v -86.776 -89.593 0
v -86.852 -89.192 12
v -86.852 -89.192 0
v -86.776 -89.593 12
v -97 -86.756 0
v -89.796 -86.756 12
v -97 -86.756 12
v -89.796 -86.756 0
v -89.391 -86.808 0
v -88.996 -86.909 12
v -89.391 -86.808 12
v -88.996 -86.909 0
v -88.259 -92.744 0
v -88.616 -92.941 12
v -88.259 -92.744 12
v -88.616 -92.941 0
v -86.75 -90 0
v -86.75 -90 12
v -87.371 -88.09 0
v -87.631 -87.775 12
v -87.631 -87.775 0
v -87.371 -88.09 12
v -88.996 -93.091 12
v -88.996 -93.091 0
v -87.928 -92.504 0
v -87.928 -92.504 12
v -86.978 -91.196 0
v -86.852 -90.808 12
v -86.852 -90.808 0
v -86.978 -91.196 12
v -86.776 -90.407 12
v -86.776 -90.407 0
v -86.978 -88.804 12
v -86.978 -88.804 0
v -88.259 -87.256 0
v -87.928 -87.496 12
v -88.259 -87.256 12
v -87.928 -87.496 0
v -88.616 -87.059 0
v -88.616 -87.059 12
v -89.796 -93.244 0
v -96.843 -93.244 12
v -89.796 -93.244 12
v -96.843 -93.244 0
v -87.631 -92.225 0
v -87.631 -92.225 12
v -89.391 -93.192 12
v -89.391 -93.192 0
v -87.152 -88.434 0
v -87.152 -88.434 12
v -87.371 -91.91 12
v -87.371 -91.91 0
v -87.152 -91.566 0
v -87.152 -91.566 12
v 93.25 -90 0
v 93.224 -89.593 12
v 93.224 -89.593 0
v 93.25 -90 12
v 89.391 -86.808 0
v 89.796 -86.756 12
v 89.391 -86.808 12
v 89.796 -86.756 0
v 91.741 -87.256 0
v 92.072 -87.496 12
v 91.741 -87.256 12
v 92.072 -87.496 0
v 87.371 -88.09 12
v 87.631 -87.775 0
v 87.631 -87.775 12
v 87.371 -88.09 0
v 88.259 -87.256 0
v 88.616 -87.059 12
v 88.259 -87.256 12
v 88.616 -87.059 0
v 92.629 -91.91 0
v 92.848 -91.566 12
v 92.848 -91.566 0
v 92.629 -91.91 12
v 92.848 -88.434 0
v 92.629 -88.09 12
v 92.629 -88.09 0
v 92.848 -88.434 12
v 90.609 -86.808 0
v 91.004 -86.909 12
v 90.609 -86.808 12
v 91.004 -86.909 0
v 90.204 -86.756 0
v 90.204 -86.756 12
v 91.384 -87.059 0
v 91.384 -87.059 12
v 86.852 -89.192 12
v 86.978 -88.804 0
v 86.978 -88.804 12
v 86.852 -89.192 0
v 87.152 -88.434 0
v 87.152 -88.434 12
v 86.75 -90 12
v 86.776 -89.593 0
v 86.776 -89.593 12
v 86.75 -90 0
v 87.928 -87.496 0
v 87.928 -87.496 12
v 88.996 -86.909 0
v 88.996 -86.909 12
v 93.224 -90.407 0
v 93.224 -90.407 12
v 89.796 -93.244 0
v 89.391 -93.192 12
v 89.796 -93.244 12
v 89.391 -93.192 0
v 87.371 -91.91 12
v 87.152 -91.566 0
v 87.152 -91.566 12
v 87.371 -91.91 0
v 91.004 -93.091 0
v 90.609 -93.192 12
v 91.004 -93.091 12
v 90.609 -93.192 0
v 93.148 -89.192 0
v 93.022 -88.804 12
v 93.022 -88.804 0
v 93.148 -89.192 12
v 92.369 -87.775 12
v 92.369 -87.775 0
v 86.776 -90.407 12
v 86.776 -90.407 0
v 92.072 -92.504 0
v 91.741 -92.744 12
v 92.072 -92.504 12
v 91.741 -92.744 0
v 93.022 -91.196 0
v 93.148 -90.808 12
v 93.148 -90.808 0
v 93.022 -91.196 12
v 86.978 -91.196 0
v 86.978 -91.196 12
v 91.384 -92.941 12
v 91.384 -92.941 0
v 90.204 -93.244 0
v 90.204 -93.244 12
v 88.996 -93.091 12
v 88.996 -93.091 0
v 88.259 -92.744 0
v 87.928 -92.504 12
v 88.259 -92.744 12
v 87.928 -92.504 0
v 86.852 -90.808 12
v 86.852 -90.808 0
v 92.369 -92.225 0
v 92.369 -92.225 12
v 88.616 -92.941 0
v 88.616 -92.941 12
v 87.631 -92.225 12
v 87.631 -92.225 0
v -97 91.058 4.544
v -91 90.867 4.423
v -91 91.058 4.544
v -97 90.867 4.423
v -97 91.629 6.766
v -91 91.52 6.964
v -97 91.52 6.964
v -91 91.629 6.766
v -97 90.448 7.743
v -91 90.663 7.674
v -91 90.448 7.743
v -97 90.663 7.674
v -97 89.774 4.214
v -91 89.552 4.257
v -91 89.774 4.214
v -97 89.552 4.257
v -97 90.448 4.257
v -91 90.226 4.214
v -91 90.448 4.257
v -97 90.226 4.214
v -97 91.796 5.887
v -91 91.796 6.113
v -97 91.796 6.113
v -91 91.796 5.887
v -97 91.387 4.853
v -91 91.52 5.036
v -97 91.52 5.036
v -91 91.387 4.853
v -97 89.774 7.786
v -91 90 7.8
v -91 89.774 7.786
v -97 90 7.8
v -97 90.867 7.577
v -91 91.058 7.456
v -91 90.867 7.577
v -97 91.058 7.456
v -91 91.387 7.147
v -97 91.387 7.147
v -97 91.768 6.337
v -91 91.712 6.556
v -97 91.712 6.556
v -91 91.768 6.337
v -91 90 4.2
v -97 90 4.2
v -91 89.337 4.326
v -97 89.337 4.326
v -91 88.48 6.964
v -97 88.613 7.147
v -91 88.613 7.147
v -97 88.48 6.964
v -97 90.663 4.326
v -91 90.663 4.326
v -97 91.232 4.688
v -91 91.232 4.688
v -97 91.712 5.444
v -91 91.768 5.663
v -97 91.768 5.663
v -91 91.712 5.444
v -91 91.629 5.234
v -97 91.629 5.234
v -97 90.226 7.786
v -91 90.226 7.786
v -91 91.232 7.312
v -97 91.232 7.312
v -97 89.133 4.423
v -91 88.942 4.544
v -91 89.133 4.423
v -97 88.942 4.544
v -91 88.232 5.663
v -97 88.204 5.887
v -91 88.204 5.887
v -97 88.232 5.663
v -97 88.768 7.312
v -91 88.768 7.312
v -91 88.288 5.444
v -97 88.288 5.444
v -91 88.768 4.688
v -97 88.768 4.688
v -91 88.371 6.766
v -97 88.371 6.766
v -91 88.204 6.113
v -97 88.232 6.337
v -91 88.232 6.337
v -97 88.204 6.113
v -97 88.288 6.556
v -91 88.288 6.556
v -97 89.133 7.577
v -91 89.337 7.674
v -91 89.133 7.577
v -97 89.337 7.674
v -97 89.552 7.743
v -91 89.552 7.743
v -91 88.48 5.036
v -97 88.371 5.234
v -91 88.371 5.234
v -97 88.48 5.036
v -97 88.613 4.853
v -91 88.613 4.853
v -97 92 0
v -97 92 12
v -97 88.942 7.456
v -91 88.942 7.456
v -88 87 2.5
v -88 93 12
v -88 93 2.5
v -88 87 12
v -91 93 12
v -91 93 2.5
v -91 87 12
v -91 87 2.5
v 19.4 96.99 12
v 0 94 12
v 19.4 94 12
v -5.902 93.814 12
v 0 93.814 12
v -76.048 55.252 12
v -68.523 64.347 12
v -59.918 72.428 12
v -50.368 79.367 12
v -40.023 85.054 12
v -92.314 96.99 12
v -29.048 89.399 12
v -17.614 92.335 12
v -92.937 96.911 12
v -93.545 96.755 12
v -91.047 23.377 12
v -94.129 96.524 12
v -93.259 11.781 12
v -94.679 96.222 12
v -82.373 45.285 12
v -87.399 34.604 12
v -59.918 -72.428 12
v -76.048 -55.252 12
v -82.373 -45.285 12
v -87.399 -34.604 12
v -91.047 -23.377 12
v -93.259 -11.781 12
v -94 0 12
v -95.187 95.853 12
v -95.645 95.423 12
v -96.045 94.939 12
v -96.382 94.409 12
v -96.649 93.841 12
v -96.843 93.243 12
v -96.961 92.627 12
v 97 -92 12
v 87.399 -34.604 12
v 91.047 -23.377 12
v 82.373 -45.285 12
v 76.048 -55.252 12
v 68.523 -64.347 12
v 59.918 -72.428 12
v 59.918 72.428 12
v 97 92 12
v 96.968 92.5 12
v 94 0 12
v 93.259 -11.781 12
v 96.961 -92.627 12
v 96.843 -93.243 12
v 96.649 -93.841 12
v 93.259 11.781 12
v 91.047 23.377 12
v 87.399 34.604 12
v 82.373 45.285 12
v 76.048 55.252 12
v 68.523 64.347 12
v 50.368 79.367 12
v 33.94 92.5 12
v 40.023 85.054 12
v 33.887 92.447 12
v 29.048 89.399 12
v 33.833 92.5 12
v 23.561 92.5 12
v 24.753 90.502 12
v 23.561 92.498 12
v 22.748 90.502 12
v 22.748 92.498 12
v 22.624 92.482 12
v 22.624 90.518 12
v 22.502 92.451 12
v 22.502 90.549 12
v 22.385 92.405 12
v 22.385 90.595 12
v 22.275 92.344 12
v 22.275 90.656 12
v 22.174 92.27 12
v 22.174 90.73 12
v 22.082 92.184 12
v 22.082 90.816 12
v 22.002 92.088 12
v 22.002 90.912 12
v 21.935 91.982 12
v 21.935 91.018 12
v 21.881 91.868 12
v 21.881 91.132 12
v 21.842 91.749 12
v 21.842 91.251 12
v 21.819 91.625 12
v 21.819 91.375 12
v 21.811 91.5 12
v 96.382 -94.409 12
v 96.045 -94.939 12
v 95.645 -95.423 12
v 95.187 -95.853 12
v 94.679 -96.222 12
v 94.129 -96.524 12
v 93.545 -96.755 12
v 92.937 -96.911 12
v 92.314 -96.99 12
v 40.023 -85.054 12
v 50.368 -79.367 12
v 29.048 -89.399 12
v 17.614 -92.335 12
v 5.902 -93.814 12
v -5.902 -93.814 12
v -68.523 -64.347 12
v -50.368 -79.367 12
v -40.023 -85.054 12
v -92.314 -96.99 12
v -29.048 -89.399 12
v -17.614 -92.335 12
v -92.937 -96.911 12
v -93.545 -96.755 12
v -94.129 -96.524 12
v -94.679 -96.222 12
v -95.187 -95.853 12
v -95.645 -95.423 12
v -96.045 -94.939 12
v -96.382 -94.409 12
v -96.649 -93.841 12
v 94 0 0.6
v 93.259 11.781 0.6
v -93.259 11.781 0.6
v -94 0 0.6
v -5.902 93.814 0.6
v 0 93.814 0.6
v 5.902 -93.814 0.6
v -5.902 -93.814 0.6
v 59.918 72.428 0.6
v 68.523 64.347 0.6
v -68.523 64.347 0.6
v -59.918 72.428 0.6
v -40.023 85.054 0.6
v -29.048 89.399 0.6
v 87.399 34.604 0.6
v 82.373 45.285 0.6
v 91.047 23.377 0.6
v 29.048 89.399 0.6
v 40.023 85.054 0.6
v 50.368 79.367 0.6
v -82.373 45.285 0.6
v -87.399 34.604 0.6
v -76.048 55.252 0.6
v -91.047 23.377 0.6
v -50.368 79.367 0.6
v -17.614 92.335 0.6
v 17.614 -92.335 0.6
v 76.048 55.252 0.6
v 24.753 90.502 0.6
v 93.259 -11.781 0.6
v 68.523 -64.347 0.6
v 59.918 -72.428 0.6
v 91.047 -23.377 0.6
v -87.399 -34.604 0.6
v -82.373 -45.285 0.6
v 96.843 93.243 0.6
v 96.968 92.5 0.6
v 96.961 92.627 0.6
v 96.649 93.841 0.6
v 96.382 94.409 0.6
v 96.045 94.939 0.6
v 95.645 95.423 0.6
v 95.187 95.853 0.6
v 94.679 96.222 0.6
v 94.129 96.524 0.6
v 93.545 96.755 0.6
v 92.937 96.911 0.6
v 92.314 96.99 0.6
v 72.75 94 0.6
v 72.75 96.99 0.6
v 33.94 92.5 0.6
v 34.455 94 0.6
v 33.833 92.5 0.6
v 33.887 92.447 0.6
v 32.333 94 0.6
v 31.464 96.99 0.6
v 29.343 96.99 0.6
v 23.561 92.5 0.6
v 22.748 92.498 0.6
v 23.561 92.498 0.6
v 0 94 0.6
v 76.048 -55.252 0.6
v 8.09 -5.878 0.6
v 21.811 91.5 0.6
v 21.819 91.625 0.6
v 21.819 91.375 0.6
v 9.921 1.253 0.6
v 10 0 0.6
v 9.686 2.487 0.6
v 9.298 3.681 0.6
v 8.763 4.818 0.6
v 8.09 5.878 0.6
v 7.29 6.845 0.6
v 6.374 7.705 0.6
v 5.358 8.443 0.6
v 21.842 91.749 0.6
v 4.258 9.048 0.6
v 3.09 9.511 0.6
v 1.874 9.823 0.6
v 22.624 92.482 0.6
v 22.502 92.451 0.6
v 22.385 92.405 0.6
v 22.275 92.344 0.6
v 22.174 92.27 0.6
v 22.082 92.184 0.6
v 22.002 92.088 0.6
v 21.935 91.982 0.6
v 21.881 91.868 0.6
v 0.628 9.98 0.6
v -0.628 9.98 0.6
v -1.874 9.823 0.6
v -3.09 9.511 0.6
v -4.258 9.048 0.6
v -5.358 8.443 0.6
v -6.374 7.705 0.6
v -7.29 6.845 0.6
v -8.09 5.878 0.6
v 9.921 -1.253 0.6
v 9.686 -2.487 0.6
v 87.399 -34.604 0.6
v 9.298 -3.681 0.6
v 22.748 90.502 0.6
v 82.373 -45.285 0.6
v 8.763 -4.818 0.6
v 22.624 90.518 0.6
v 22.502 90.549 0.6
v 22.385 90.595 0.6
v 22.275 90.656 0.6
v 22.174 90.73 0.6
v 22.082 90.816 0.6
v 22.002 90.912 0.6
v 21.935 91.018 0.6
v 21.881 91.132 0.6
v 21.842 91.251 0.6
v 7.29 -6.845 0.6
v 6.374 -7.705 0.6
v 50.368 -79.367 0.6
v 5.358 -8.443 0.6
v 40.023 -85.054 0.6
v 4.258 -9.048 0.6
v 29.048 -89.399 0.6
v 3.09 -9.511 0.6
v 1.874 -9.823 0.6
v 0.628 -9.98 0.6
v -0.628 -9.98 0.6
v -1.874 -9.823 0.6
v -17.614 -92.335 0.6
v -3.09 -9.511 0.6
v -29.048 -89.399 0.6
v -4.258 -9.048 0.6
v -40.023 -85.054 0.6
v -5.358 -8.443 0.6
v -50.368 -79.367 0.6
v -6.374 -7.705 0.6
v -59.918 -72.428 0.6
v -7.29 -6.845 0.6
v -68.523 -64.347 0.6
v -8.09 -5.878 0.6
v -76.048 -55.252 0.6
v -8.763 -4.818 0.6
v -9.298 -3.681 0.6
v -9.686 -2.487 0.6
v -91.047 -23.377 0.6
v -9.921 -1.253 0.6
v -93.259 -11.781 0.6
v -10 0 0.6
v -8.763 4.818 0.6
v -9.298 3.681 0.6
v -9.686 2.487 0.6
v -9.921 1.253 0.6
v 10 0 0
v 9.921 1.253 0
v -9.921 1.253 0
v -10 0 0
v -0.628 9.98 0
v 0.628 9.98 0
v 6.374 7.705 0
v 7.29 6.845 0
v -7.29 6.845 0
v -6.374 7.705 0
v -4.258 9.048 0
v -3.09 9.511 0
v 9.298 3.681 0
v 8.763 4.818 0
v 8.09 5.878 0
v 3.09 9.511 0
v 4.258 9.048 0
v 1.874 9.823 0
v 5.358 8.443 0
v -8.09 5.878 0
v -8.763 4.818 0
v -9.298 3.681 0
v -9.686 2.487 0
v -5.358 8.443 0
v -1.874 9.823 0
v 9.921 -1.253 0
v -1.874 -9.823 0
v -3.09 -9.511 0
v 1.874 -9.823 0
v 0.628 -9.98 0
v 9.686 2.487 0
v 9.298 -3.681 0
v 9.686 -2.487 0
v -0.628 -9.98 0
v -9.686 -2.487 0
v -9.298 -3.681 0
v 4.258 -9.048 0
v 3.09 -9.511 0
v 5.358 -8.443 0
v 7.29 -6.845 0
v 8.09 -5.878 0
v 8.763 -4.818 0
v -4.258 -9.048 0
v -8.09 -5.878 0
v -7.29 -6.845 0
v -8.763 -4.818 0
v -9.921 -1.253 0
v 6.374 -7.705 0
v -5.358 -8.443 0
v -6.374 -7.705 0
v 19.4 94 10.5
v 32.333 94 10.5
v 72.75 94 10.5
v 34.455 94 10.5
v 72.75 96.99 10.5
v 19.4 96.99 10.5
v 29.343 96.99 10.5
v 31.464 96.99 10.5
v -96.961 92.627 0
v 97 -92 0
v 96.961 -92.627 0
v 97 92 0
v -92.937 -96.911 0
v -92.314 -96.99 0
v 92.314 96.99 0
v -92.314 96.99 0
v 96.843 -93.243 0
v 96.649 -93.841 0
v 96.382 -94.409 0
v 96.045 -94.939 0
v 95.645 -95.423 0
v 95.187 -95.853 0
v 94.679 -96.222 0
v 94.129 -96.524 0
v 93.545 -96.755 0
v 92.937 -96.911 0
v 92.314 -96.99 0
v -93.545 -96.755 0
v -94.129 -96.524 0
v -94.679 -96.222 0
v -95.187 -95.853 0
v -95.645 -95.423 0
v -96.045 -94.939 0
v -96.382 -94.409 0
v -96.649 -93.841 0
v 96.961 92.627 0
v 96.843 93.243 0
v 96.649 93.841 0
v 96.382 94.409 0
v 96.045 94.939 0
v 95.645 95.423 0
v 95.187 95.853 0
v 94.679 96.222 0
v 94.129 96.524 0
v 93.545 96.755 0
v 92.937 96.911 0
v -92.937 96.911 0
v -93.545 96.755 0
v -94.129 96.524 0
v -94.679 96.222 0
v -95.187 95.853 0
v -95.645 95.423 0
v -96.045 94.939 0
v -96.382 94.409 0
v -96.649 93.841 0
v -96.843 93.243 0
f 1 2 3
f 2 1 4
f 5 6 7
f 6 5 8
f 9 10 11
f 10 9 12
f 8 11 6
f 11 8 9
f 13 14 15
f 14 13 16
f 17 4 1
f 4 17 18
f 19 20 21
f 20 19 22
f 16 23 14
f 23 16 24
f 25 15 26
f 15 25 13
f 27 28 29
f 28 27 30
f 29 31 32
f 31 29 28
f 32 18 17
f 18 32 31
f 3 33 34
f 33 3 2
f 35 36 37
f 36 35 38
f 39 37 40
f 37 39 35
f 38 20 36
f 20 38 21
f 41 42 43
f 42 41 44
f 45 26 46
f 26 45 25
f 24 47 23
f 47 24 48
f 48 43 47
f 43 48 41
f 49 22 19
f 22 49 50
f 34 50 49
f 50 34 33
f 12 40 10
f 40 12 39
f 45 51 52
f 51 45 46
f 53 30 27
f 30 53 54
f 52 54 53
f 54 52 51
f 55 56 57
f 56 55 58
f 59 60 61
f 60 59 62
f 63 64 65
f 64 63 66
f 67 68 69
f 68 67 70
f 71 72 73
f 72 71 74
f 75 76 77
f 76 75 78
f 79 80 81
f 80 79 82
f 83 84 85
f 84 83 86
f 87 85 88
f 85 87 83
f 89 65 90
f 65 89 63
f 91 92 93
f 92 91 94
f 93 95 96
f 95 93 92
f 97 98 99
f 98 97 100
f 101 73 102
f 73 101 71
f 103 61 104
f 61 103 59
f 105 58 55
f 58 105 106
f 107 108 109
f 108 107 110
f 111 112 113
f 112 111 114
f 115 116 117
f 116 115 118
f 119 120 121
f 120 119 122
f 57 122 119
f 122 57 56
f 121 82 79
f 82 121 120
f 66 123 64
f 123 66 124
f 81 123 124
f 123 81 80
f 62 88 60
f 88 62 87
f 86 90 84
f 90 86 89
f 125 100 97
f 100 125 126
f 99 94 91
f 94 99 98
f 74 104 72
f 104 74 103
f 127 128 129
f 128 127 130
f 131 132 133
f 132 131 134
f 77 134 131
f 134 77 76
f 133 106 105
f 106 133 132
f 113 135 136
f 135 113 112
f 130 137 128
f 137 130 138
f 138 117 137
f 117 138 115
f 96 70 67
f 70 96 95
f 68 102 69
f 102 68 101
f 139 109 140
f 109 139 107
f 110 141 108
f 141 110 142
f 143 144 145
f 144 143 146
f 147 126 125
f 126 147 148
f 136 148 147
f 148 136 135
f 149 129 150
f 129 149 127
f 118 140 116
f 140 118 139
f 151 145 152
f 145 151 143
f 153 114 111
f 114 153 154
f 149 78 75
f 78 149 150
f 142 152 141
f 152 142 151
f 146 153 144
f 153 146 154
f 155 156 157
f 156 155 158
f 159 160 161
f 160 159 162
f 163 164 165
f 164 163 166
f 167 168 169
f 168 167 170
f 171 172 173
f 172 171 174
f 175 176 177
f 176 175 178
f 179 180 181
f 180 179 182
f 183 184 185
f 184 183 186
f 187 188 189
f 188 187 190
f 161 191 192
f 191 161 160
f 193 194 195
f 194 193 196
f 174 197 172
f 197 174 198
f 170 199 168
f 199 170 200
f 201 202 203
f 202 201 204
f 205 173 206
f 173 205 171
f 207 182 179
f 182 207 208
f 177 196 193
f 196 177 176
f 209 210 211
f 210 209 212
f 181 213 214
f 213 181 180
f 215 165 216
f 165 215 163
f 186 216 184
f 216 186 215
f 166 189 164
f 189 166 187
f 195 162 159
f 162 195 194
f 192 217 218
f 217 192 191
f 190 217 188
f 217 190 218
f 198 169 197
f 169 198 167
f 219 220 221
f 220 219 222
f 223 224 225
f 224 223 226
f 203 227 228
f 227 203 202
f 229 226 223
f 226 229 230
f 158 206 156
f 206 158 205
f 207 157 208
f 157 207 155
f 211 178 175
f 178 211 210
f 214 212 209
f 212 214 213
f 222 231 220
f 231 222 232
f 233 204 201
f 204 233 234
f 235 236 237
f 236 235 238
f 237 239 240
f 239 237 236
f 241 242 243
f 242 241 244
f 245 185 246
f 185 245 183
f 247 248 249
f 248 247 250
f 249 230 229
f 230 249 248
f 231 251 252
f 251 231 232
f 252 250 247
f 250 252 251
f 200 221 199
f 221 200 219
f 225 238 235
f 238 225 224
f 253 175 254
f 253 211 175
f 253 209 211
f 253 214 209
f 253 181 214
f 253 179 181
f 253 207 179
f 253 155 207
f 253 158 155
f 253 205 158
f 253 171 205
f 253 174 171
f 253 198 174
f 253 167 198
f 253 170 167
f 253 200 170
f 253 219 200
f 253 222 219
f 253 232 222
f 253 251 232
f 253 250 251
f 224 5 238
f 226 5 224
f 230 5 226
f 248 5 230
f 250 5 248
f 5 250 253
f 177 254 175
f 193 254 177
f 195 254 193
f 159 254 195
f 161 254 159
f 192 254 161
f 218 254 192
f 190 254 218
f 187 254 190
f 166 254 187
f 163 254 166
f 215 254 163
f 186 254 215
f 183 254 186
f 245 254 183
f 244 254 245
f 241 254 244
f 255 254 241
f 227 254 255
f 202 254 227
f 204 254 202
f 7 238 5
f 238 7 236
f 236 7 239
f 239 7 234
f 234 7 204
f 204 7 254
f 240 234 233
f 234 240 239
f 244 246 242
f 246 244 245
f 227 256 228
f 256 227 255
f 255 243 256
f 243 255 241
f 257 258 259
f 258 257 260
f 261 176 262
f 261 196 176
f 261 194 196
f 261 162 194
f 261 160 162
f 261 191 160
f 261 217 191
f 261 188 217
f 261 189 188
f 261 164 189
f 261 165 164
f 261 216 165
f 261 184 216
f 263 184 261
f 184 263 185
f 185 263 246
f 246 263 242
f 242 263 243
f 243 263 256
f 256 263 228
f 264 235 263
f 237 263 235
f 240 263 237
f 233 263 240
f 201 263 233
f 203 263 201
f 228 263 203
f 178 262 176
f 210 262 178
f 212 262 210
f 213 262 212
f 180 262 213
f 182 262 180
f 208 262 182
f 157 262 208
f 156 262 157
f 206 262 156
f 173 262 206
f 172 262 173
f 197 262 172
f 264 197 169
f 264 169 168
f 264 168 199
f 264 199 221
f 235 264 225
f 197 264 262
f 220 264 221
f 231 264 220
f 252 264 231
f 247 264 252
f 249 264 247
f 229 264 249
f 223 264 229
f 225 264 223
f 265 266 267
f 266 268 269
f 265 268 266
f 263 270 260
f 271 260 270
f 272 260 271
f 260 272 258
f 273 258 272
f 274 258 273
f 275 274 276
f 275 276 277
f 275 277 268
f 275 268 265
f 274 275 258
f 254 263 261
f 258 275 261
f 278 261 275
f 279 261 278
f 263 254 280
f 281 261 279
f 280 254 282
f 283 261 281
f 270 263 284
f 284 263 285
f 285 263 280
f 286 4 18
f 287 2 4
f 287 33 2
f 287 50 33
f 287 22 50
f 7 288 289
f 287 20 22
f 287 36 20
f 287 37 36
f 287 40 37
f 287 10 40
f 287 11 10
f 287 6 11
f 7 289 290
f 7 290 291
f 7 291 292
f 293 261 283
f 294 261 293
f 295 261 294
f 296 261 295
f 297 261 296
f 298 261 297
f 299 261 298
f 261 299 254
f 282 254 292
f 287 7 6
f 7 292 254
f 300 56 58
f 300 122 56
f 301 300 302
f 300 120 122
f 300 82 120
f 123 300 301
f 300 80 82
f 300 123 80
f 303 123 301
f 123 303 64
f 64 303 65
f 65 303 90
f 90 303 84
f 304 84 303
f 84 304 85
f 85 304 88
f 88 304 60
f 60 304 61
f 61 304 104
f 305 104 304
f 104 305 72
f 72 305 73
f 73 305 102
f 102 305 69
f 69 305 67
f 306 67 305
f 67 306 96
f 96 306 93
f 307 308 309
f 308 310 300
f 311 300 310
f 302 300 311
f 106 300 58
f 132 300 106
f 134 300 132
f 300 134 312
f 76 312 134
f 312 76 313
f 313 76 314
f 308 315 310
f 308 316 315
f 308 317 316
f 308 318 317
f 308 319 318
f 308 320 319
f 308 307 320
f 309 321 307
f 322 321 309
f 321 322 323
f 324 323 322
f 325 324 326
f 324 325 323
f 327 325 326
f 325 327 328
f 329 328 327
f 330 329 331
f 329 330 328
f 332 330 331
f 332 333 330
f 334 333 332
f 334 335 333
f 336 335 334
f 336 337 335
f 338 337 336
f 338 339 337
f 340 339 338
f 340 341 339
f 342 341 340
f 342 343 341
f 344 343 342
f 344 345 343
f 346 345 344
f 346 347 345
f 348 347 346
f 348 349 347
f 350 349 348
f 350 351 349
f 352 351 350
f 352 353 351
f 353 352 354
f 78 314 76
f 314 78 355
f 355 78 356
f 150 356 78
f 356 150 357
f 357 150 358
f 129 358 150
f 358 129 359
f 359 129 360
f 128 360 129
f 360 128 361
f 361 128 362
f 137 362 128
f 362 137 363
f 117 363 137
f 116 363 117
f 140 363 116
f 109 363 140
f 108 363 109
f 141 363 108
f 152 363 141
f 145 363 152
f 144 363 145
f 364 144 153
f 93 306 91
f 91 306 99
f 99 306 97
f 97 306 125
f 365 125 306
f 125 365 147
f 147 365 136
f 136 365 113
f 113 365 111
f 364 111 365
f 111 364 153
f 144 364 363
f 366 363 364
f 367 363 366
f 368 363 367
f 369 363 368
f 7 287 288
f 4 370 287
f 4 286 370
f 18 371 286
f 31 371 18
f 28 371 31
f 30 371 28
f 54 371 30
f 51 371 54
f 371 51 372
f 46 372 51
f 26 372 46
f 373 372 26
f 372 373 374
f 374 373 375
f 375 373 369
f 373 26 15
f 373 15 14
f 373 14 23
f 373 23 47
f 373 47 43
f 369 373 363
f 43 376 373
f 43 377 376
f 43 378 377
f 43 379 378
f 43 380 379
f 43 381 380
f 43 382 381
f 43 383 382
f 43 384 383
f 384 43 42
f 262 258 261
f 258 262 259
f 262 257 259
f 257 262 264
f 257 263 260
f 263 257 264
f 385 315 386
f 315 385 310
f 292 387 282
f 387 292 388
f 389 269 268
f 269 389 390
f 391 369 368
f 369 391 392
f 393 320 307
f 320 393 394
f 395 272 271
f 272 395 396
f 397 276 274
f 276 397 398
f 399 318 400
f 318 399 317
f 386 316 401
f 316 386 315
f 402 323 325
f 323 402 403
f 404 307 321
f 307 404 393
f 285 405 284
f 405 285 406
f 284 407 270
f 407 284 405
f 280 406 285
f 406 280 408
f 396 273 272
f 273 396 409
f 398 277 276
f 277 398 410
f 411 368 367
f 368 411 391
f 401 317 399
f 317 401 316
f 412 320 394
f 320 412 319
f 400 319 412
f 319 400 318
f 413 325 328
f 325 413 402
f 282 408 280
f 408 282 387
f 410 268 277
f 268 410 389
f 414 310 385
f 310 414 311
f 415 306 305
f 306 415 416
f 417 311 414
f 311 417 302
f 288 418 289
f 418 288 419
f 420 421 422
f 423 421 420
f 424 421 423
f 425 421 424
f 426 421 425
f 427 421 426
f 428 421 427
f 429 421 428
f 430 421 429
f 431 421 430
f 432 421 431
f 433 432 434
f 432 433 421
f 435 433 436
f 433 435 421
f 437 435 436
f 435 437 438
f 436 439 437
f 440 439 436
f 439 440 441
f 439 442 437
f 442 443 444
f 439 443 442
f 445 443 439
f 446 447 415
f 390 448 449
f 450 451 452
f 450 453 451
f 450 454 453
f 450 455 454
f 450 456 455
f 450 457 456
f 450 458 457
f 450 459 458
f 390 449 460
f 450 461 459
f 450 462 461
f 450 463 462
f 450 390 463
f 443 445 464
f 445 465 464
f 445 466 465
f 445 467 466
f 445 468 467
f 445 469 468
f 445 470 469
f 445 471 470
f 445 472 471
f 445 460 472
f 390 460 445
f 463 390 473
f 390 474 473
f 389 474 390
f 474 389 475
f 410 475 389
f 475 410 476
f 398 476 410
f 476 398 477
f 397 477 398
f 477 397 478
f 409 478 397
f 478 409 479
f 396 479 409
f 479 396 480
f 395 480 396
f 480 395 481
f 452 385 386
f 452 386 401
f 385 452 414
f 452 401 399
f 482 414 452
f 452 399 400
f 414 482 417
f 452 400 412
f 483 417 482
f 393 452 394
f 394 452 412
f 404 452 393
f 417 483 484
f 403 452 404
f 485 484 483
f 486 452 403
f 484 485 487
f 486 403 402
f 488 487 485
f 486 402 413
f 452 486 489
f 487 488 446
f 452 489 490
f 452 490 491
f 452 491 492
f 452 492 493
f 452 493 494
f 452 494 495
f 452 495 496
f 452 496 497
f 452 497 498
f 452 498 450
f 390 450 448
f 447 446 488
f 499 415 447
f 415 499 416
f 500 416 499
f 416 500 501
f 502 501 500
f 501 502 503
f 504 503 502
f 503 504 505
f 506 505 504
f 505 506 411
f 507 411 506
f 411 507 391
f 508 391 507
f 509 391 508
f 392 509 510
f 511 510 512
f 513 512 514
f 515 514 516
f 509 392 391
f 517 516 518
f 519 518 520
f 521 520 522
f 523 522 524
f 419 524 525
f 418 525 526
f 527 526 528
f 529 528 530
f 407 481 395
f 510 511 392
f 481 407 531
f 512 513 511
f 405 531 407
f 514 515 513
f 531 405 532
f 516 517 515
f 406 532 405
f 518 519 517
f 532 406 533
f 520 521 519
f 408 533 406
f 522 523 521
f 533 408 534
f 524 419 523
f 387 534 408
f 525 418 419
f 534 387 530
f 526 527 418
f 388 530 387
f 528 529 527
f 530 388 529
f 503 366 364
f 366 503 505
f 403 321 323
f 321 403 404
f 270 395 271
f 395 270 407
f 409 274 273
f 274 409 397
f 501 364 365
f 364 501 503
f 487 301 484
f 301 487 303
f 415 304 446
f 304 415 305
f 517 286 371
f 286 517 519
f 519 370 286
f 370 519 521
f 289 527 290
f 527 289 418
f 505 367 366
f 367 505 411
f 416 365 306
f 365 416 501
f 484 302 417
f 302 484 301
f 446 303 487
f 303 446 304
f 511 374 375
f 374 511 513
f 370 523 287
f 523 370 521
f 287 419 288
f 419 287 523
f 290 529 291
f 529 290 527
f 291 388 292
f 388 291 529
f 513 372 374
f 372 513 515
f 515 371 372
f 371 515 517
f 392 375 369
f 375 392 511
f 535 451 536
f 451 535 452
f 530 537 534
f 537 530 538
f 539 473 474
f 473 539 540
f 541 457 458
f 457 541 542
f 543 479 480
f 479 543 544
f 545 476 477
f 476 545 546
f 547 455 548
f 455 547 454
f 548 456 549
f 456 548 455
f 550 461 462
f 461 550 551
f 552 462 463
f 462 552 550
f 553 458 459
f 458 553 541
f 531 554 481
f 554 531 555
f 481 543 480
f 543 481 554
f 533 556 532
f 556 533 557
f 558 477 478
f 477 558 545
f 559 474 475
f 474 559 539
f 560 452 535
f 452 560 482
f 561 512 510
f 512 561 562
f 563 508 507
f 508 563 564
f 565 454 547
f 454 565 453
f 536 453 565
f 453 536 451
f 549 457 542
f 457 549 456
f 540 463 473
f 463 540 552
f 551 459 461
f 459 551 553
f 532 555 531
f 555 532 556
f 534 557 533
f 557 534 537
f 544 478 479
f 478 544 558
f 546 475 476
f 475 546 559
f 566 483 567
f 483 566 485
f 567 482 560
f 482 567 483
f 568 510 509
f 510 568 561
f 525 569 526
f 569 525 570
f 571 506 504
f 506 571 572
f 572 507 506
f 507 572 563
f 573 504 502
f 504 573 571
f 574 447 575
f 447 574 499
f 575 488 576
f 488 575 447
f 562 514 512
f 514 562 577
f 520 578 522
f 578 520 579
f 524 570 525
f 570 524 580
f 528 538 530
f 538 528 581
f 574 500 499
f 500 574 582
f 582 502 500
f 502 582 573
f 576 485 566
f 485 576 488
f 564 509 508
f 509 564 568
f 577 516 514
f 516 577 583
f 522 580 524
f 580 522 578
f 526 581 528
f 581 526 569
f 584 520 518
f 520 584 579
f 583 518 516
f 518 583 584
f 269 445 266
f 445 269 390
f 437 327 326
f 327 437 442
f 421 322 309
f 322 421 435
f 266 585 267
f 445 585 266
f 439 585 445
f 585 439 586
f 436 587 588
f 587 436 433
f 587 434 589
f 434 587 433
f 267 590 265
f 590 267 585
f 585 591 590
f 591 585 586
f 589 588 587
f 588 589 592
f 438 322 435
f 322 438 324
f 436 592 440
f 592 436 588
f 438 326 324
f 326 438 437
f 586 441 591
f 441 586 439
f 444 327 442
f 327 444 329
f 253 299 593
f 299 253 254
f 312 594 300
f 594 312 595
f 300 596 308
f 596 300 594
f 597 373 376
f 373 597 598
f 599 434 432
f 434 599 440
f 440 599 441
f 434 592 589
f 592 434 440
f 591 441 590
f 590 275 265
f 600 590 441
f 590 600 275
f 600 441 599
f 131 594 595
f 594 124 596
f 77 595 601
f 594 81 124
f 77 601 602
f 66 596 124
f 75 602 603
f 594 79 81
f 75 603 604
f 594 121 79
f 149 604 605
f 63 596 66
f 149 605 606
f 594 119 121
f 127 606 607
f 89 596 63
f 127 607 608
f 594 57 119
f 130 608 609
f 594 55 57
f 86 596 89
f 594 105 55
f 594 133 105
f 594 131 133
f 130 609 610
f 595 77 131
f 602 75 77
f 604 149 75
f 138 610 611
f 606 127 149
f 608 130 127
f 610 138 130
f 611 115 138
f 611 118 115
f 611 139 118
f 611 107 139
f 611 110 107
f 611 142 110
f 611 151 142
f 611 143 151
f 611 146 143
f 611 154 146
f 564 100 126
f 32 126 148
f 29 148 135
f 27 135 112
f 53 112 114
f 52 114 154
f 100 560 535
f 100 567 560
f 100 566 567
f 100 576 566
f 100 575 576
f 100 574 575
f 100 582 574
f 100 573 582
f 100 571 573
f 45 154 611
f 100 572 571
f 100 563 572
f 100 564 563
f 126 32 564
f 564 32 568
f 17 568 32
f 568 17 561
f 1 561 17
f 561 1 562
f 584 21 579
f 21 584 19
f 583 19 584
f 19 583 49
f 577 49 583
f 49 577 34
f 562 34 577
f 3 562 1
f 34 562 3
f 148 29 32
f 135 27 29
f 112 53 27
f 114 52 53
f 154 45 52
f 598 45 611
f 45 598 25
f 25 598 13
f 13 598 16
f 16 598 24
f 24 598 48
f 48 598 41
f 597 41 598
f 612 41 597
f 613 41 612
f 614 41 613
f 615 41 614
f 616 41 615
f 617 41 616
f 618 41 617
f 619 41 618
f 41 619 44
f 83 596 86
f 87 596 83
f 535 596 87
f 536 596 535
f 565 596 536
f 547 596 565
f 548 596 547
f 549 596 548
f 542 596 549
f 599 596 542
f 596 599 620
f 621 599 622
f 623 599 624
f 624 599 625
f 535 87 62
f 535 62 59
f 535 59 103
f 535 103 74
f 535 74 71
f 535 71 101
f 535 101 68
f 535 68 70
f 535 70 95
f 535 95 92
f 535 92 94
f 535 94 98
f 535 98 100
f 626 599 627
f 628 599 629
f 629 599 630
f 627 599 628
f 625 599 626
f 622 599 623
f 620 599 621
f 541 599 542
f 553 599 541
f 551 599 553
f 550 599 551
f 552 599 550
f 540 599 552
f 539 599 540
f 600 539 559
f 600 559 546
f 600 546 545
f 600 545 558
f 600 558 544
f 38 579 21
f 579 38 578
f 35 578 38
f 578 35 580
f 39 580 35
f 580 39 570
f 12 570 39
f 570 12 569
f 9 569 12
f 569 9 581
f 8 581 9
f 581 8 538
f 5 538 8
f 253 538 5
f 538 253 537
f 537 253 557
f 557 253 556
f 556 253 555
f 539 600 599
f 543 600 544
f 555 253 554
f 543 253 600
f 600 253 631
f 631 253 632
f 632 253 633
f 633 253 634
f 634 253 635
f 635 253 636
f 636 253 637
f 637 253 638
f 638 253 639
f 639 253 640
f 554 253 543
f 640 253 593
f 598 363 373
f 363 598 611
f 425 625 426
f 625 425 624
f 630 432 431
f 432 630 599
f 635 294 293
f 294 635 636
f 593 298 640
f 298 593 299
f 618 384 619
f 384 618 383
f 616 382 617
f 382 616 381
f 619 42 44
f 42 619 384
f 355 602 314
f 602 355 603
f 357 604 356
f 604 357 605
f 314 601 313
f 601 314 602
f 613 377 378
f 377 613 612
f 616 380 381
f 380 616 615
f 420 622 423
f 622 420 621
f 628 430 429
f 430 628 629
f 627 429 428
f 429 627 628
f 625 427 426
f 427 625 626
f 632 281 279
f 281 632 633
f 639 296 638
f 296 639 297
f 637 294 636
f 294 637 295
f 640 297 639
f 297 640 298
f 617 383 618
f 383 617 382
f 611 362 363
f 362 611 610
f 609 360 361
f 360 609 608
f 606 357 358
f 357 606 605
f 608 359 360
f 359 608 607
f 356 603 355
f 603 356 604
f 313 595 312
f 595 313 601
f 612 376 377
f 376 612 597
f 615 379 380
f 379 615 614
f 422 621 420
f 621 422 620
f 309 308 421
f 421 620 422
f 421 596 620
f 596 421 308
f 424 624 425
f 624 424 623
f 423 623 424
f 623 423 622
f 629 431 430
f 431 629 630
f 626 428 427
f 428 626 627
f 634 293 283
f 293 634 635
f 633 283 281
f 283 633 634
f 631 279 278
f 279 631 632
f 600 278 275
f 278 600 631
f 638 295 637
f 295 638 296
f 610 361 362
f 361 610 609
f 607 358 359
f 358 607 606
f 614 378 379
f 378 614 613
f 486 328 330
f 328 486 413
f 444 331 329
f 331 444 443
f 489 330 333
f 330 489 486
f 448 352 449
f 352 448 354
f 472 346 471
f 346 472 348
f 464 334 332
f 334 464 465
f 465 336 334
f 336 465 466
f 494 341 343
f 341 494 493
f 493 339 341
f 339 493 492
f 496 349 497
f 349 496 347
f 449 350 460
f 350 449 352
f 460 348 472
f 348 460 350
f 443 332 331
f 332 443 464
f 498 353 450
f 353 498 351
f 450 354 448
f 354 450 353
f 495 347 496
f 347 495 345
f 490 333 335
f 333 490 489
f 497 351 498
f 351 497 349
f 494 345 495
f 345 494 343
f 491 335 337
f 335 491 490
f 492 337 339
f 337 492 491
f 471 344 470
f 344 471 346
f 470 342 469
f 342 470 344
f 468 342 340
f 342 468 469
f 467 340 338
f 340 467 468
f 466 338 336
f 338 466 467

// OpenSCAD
$fn = 50;


union() {
	difference() {
		union() {
			translate(v = [0, 0, 0]) {
				rotate(a = [0, 0, 0]) {
					hull() {
						translate(v = [-92.0000000000, 92.0000000000, 0]) {
							rotate(a = [0, 0, 0]) {
								translate(v = [0, 0, 0]) {
									rotate(a = [0, 0, 0]) {
										cylinder(h = 12, r = 5);
									}
								}
							}
						}
						translate(v = [92.0000000000, 92.0000000000, 0]) {
							rotate(a = [0, 0, 0]) {
								translate(v = [0, 0, 0]) {
									rotate(a = [0, 0, 0]) {
										cylinder(h = 12, r = 5);
									}
								}
							}
						}
						translate(v = [-92.0000000000, -92.0000000000, 0]) {
							rotate(a = [0, 0, 0]) {
								translate(v = [0, 0, 0]) {
									rotate(a = [0, 0, 0]) {
										cylinder(h = 12, r = 5);
									}
								}
							}
						}
						translate(v = [92.0000000000, -92.0000000000, 0]) {
							rotate(a = [0, 0, 0]) {
								translate(v = [0, 0, 0]) {
									rotate(a = [0, 0, 0]) {
										cylinder(h = 12, r = 5);
									}
								}
							}
						}
					}
				}
			}
		}
		union() {
			translate(v = [-97.5000000000, -90.0000000000, -125]) {
				rotate(a = [0, 0, 0]) {
					hull() {
						translate(v = [7.5000000000, 0, 0]) {
							rotate(a = [0, 0, 0]) {
								translate(v = [0, 0, 0]) {
									rotate(a = [0, 0, 0]) {
										cylinder(h = 250, r = 3.2500000000);
									}
								}
							}
						}
						translate(v = [-7.5000000000, 0, 0]) {
							rotate(a = [0, 0, 0]) {
								translate(v = [0, 0, 0]) {
									rotate(a = [0, 0, 0]) {
										cylinder(h = 250, r = 3.2500000000);
									}
								}
							}
						}
					}
				}
			}
			translate(v = [90.0000000000, -90.0000000000, -125.0000000000]) {
				rotate(a = [0, 0, 0]) {
					cylinder(h = 250, r = 3.2500000000);
				}
			}
			translate(v = [-97.0000000000, 90.0000000000, 6.0000000000]) {
				rotate(a = [0, 90, 0]) {
					cylinder(h = 9, r = 1.8000000000);
				}
			}
			translate(v = [-91.0000000000, 87.0000000000, 2.5000000000]) {
				rotate(a = [0, 0, 0]) {
					cube(size = [3, 6, 9.5000000000]);
				}
			}
			translate(v = [0, 0, 0.6000000000]) {
				rotate(a = [0, 0, 0]) {
					cylinder(h = 14.4000000000, r = 94.0000000000);
				}
			}
			translate(v = [0, 0, -6.0000000000]) {
				rotate(a = [0, 0, 0]) {
					cylinder(h = 12, r = 10.0000000000);
				}
			}
			translate(v = [0.0000000000, 92.5000000000, 0.6000000000]) {
				rotate(a = [0, 0, 0]) {
					cube(size = [97.0000000000, 1.5000000000, 14.4000000000]);
				}
			}
			translate(v = [72.7500000000, 92.5000000000, 0.6000000000]) {
				rotate(a = [0, 0, 0]) {
					cube(size = [24.2500000000, 4.5000000000, 14.4000000000]);
				}
			}
			translate(v = [19.4000000000, 92.5000000000, 10.5000000000]) {
				rotate(a = [0, 0, 0]) {
					cube(size = [77.6000000000, 4.5000000000, 1.5000000000]);
				}
			}
			translate(v = [28.5833333333, 97.7500000000, 0.6000000000]) {
				rotate(a = [0, 0, -45]) {
					cube(size = [7.5000000000, 1.5000000000, 14.4000000000]);
				}
			}
			translate(v = [16.0610000000, 90.5000000000, 0.6000000000]) {
				rotate(a = [0, 0, 0]) {
					cube(size = [7.5000000000, 2, 11.4000000000]);
				}
			}
		}
	}
	union() {
		translate(v = [25.3110000000, 91.5000000000, 0]) {
			rotate(a = [0, 0, 0]) {
				hull() {
					translate(v = [2.5000000000, 0, 0]) {
						rotate(a = [0, 0, 0]) {
							translate(v = [0, 0, 0]) {
								rotate(a = [0, 0, 0]) {
									cylinder(h = 12, r = 1.0000000000);
								}
							}
						}
					}
					translate(v = [-2.5000000000, 0, 0]) {
						rotate(a = [0, 0, 0]) {
							translate(v = [0, 0, 0]) {
								rotate(a = [0, 0, 0]) {
									cylinder(h = 12, r = 1.0000000000);
								}
							}
						}
					}
				}
			}
		}
	}
}
